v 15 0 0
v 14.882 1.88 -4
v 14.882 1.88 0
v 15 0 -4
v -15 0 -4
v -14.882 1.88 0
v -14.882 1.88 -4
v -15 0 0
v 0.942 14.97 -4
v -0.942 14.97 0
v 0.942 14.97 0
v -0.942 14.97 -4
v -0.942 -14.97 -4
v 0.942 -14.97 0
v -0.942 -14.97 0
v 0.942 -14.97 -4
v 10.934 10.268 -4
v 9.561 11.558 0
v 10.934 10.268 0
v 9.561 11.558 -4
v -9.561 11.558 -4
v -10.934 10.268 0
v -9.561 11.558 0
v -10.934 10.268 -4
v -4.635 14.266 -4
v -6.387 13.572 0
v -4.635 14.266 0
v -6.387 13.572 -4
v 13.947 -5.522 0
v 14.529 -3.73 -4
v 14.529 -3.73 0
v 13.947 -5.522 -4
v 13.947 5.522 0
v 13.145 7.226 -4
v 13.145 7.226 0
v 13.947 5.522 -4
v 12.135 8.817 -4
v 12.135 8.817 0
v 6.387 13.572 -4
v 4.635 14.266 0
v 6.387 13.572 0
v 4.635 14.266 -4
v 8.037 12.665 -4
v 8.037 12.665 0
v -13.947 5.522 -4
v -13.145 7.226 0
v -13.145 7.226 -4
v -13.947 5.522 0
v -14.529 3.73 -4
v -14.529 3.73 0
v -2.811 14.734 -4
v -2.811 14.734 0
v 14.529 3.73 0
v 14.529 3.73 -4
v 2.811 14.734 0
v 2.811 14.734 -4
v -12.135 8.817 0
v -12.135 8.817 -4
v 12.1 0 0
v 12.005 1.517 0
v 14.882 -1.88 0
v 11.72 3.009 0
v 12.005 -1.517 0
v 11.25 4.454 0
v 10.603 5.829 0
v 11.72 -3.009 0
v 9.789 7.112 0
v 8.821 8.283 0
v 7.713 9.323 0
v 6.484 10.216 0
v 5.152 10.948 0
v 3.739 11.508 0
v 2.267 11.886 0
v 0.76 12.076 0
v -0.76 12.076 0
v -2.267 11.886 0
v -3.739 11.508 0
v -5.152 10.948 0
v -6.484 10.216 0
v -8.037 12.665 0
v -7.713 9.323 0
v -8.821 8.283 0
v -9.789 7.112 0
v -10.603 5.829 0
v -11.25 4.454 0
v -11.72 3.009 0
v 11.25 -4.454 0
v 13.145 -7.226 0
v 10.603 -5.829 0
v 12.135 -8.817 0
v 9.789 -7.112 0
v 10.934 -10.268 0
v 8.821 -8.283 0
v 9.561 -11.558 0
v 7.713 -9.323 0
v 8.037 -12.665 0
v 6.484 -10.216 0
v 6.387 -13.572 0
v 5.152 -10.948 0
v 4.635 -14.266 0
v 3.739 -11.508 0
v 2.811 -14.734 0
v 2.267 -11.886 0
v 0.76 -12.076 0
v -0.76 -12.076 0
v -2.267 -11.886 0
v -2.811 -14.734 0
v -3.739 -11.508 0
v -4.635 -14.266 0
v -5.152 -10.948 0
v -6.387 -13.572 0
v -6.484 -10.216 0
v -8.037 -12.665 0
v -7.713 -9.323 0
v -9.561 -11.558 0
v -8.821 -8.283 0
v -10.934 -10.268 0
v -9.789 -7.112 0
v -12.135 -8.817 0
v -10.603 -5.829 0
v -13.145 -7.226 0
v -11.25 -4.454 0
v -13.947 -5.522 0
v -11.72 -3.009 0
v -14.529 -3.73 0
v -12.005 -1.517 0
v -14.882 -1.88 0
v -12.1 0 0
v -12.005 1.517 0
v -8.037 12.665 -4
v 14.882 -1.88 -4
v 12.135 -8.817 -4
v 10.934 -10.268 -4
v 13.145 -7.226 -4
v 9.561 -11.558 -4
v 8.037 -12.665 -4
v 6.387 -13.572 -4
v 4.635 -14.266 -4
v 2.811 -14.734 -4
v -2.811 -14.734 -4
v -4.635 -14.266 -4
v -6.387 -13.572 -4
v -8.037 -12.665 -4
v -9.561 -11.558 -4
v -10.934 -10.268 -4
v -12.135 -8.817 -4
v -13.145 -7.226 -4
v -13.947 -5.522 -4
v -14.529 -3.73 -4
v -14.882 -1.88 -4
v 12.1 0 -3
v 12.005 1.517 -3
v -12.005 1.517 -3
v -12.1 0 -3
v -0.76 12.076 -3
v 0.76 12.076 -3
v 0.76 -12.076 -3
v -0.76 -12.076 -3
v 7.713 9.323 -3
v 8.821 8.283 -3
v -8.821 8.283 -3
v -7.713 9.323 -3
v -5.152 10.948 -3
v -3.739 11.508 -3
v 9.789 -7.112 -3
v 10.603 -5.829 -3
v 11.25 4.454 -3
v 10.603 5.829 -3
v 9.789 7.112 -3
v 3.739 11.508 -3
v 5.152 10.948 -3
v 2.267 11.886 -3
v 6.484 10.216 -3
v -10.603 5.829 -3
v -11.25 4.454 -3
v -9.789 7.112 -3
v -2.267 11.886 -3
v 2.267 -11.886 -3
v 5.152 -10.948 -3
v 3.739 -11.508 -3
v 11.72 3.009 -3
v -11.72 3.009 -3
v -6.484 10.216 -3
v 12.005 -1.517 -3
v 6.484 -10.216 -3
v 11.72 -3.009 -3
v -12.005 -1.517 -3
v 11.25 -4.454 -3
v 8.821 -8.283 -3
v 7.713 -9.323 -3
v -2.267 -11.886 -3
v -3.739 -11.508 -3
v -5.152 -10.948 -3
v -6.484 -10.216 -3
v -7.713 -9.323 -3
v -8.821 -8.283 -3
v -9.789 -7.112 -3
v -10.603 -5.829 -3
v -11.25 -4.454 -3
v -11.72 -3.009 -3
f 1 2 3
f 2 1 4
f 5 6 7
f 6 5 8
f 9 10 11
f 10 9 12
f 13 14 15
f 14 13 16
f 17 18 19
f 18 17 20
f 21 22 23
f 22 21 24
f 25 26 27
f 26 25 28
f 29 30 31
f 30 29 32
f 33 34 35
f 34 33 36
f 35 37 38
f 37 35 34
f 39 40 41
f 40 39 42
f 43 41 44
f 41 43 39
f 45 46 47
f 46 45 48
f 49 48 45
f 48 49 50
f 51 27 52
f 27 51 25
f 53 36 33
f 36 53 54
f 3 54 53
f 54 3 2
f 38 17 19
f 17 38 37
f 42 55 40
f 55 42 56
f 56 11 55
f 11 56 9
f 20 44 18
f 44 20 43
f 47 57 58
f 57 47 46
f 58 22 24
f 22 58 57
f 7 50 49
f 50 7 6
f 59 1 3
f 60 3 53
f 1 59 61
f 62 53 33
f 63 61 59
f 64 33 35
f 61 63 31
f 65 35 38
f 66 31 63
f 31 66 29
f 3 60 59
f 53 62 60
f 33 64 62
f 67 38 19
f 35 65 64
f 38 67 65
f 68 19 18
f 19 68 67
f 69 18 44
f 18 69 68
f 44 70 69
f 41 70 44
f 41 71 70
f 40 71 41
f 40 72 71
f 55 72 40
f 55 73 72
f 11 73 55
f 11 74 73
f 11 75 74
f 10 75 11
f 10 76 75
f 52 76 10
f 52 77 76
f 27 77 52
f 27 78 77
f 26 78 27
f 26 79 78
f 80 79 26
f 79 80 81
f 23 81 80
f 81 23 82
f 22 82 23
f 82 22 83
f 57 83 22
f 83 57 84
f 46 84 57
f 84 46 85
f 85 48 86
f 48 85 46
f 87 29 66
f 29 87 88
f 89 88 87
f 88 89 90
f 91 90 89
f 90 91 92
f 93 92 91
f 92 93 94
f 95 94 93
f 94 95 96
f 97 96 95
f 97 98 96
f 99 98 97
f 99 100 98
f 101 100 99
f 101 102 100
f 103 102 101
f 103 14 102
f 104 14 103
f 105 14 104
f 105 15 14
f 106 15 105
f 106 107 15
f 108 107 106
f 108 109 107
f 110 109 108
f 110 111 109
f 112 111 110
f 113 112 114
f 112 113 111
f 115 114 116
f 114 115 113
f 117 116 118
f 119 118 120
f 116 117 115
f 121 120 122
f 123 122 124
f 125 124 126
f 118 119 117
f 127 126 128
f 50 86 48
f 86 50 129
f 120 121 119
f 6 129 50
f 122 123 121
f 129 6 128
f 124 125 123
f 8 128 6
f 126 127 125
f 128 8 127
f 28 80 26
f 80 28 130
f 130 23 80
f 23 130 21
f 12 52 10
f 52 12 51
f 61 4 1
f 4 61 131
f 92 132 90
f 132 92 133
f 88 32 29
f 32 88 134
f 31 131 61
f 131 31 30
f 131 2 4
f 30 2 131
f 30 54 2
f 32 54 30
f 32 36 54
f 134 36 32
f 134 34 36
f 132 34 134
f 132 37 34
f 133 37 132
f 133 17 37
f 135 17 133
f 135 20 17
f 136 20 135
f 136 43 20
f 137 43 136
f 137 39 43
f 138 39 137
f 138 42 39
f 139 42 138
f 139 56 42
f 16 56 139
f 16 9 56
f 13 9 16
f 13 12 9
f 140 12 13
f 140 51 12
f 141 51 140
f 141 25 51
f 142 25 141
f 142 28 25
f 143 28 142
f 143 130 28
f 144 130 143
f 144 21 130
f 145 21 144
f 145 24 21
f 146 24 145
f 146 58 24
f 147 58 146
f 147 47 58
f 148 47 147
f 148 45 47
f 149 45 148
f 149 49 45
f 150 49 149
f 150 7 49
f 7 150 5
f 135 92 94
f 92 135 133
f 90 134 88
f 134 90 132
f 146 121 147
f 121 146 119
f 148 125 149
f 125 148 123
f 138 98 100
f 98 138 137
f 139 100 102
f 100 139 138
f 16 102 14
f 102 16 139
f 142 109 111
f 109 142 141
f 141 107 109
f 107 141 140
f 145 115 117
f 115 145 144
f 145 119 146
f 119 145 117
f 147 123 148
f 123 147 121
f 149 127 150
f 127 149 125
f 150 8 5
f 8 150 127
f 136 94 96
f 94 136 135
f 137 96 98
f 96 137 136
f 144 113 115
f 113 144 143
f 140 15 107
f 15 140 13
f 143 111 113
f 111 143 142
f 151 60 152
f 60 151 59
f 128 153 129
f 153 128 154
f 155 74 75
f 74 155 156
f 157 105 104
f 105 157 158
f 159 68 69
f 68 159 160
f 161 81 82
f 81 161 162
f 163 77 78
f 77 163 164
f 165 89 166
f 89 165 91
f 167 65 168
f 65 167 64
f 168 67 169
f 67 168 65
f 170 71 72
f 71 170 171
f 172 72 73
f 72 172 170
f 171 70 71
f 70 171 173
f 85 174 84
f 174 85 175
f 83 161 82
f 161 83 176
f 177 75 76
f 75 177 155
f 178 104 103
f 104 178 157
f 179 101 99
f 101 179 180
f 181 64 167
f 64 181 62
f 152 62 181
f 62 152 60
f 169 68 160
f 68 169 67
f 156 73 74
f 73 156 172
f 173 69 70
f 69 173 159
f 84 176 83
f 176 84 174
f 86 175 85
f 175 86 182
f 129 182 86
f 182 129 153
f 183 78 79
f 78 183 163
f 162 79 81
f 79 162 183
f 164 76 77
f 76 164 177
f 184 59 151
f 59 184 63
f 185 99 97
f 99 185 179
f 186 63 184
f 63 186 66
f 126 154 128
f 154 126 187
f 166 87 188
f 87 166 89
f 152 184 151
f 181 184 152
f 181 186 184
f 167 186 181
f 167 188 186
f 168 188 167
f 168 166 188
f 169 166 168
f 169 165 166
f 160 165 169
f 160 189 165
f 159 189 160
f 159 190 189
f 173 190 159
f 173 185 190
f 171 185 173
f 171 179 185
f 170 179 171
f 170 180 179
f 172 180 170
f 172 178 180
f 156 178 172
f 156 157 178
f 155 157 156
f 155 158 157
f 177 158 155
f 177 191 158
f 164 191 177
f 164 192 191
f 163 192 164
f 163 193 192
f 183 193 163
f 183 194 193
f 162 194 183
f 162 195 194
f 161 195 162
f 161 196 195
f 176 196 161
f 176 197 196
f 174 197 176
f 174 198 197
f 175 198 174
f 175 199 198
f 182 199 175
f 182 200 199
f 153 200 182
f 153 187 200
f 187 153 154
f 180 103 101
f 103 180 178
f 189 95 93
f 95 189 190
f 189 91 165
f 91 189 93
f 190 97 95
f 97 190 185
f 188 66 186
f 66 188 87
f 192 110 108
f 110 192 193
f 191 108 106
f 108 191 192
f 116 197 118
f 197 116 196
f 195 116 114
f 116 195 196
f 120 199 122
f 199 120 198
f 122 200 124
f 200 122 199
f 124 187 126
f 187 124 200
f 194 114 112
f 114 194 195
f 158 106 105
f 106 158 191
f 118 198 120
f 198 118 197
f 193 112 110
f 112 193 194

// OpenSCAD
$fn = 50;


difference() {
	union() {
		translate(v = [0, 0, -4.0000000000]) {
			cylinder(h = 4, r = 15.0000000000);
		}
	}
	union() {
		#translate(v = [0, 0, -3.0000000000]) {
			cylinder(h = 3, r = 12.1000000000);
		}
	}
}
